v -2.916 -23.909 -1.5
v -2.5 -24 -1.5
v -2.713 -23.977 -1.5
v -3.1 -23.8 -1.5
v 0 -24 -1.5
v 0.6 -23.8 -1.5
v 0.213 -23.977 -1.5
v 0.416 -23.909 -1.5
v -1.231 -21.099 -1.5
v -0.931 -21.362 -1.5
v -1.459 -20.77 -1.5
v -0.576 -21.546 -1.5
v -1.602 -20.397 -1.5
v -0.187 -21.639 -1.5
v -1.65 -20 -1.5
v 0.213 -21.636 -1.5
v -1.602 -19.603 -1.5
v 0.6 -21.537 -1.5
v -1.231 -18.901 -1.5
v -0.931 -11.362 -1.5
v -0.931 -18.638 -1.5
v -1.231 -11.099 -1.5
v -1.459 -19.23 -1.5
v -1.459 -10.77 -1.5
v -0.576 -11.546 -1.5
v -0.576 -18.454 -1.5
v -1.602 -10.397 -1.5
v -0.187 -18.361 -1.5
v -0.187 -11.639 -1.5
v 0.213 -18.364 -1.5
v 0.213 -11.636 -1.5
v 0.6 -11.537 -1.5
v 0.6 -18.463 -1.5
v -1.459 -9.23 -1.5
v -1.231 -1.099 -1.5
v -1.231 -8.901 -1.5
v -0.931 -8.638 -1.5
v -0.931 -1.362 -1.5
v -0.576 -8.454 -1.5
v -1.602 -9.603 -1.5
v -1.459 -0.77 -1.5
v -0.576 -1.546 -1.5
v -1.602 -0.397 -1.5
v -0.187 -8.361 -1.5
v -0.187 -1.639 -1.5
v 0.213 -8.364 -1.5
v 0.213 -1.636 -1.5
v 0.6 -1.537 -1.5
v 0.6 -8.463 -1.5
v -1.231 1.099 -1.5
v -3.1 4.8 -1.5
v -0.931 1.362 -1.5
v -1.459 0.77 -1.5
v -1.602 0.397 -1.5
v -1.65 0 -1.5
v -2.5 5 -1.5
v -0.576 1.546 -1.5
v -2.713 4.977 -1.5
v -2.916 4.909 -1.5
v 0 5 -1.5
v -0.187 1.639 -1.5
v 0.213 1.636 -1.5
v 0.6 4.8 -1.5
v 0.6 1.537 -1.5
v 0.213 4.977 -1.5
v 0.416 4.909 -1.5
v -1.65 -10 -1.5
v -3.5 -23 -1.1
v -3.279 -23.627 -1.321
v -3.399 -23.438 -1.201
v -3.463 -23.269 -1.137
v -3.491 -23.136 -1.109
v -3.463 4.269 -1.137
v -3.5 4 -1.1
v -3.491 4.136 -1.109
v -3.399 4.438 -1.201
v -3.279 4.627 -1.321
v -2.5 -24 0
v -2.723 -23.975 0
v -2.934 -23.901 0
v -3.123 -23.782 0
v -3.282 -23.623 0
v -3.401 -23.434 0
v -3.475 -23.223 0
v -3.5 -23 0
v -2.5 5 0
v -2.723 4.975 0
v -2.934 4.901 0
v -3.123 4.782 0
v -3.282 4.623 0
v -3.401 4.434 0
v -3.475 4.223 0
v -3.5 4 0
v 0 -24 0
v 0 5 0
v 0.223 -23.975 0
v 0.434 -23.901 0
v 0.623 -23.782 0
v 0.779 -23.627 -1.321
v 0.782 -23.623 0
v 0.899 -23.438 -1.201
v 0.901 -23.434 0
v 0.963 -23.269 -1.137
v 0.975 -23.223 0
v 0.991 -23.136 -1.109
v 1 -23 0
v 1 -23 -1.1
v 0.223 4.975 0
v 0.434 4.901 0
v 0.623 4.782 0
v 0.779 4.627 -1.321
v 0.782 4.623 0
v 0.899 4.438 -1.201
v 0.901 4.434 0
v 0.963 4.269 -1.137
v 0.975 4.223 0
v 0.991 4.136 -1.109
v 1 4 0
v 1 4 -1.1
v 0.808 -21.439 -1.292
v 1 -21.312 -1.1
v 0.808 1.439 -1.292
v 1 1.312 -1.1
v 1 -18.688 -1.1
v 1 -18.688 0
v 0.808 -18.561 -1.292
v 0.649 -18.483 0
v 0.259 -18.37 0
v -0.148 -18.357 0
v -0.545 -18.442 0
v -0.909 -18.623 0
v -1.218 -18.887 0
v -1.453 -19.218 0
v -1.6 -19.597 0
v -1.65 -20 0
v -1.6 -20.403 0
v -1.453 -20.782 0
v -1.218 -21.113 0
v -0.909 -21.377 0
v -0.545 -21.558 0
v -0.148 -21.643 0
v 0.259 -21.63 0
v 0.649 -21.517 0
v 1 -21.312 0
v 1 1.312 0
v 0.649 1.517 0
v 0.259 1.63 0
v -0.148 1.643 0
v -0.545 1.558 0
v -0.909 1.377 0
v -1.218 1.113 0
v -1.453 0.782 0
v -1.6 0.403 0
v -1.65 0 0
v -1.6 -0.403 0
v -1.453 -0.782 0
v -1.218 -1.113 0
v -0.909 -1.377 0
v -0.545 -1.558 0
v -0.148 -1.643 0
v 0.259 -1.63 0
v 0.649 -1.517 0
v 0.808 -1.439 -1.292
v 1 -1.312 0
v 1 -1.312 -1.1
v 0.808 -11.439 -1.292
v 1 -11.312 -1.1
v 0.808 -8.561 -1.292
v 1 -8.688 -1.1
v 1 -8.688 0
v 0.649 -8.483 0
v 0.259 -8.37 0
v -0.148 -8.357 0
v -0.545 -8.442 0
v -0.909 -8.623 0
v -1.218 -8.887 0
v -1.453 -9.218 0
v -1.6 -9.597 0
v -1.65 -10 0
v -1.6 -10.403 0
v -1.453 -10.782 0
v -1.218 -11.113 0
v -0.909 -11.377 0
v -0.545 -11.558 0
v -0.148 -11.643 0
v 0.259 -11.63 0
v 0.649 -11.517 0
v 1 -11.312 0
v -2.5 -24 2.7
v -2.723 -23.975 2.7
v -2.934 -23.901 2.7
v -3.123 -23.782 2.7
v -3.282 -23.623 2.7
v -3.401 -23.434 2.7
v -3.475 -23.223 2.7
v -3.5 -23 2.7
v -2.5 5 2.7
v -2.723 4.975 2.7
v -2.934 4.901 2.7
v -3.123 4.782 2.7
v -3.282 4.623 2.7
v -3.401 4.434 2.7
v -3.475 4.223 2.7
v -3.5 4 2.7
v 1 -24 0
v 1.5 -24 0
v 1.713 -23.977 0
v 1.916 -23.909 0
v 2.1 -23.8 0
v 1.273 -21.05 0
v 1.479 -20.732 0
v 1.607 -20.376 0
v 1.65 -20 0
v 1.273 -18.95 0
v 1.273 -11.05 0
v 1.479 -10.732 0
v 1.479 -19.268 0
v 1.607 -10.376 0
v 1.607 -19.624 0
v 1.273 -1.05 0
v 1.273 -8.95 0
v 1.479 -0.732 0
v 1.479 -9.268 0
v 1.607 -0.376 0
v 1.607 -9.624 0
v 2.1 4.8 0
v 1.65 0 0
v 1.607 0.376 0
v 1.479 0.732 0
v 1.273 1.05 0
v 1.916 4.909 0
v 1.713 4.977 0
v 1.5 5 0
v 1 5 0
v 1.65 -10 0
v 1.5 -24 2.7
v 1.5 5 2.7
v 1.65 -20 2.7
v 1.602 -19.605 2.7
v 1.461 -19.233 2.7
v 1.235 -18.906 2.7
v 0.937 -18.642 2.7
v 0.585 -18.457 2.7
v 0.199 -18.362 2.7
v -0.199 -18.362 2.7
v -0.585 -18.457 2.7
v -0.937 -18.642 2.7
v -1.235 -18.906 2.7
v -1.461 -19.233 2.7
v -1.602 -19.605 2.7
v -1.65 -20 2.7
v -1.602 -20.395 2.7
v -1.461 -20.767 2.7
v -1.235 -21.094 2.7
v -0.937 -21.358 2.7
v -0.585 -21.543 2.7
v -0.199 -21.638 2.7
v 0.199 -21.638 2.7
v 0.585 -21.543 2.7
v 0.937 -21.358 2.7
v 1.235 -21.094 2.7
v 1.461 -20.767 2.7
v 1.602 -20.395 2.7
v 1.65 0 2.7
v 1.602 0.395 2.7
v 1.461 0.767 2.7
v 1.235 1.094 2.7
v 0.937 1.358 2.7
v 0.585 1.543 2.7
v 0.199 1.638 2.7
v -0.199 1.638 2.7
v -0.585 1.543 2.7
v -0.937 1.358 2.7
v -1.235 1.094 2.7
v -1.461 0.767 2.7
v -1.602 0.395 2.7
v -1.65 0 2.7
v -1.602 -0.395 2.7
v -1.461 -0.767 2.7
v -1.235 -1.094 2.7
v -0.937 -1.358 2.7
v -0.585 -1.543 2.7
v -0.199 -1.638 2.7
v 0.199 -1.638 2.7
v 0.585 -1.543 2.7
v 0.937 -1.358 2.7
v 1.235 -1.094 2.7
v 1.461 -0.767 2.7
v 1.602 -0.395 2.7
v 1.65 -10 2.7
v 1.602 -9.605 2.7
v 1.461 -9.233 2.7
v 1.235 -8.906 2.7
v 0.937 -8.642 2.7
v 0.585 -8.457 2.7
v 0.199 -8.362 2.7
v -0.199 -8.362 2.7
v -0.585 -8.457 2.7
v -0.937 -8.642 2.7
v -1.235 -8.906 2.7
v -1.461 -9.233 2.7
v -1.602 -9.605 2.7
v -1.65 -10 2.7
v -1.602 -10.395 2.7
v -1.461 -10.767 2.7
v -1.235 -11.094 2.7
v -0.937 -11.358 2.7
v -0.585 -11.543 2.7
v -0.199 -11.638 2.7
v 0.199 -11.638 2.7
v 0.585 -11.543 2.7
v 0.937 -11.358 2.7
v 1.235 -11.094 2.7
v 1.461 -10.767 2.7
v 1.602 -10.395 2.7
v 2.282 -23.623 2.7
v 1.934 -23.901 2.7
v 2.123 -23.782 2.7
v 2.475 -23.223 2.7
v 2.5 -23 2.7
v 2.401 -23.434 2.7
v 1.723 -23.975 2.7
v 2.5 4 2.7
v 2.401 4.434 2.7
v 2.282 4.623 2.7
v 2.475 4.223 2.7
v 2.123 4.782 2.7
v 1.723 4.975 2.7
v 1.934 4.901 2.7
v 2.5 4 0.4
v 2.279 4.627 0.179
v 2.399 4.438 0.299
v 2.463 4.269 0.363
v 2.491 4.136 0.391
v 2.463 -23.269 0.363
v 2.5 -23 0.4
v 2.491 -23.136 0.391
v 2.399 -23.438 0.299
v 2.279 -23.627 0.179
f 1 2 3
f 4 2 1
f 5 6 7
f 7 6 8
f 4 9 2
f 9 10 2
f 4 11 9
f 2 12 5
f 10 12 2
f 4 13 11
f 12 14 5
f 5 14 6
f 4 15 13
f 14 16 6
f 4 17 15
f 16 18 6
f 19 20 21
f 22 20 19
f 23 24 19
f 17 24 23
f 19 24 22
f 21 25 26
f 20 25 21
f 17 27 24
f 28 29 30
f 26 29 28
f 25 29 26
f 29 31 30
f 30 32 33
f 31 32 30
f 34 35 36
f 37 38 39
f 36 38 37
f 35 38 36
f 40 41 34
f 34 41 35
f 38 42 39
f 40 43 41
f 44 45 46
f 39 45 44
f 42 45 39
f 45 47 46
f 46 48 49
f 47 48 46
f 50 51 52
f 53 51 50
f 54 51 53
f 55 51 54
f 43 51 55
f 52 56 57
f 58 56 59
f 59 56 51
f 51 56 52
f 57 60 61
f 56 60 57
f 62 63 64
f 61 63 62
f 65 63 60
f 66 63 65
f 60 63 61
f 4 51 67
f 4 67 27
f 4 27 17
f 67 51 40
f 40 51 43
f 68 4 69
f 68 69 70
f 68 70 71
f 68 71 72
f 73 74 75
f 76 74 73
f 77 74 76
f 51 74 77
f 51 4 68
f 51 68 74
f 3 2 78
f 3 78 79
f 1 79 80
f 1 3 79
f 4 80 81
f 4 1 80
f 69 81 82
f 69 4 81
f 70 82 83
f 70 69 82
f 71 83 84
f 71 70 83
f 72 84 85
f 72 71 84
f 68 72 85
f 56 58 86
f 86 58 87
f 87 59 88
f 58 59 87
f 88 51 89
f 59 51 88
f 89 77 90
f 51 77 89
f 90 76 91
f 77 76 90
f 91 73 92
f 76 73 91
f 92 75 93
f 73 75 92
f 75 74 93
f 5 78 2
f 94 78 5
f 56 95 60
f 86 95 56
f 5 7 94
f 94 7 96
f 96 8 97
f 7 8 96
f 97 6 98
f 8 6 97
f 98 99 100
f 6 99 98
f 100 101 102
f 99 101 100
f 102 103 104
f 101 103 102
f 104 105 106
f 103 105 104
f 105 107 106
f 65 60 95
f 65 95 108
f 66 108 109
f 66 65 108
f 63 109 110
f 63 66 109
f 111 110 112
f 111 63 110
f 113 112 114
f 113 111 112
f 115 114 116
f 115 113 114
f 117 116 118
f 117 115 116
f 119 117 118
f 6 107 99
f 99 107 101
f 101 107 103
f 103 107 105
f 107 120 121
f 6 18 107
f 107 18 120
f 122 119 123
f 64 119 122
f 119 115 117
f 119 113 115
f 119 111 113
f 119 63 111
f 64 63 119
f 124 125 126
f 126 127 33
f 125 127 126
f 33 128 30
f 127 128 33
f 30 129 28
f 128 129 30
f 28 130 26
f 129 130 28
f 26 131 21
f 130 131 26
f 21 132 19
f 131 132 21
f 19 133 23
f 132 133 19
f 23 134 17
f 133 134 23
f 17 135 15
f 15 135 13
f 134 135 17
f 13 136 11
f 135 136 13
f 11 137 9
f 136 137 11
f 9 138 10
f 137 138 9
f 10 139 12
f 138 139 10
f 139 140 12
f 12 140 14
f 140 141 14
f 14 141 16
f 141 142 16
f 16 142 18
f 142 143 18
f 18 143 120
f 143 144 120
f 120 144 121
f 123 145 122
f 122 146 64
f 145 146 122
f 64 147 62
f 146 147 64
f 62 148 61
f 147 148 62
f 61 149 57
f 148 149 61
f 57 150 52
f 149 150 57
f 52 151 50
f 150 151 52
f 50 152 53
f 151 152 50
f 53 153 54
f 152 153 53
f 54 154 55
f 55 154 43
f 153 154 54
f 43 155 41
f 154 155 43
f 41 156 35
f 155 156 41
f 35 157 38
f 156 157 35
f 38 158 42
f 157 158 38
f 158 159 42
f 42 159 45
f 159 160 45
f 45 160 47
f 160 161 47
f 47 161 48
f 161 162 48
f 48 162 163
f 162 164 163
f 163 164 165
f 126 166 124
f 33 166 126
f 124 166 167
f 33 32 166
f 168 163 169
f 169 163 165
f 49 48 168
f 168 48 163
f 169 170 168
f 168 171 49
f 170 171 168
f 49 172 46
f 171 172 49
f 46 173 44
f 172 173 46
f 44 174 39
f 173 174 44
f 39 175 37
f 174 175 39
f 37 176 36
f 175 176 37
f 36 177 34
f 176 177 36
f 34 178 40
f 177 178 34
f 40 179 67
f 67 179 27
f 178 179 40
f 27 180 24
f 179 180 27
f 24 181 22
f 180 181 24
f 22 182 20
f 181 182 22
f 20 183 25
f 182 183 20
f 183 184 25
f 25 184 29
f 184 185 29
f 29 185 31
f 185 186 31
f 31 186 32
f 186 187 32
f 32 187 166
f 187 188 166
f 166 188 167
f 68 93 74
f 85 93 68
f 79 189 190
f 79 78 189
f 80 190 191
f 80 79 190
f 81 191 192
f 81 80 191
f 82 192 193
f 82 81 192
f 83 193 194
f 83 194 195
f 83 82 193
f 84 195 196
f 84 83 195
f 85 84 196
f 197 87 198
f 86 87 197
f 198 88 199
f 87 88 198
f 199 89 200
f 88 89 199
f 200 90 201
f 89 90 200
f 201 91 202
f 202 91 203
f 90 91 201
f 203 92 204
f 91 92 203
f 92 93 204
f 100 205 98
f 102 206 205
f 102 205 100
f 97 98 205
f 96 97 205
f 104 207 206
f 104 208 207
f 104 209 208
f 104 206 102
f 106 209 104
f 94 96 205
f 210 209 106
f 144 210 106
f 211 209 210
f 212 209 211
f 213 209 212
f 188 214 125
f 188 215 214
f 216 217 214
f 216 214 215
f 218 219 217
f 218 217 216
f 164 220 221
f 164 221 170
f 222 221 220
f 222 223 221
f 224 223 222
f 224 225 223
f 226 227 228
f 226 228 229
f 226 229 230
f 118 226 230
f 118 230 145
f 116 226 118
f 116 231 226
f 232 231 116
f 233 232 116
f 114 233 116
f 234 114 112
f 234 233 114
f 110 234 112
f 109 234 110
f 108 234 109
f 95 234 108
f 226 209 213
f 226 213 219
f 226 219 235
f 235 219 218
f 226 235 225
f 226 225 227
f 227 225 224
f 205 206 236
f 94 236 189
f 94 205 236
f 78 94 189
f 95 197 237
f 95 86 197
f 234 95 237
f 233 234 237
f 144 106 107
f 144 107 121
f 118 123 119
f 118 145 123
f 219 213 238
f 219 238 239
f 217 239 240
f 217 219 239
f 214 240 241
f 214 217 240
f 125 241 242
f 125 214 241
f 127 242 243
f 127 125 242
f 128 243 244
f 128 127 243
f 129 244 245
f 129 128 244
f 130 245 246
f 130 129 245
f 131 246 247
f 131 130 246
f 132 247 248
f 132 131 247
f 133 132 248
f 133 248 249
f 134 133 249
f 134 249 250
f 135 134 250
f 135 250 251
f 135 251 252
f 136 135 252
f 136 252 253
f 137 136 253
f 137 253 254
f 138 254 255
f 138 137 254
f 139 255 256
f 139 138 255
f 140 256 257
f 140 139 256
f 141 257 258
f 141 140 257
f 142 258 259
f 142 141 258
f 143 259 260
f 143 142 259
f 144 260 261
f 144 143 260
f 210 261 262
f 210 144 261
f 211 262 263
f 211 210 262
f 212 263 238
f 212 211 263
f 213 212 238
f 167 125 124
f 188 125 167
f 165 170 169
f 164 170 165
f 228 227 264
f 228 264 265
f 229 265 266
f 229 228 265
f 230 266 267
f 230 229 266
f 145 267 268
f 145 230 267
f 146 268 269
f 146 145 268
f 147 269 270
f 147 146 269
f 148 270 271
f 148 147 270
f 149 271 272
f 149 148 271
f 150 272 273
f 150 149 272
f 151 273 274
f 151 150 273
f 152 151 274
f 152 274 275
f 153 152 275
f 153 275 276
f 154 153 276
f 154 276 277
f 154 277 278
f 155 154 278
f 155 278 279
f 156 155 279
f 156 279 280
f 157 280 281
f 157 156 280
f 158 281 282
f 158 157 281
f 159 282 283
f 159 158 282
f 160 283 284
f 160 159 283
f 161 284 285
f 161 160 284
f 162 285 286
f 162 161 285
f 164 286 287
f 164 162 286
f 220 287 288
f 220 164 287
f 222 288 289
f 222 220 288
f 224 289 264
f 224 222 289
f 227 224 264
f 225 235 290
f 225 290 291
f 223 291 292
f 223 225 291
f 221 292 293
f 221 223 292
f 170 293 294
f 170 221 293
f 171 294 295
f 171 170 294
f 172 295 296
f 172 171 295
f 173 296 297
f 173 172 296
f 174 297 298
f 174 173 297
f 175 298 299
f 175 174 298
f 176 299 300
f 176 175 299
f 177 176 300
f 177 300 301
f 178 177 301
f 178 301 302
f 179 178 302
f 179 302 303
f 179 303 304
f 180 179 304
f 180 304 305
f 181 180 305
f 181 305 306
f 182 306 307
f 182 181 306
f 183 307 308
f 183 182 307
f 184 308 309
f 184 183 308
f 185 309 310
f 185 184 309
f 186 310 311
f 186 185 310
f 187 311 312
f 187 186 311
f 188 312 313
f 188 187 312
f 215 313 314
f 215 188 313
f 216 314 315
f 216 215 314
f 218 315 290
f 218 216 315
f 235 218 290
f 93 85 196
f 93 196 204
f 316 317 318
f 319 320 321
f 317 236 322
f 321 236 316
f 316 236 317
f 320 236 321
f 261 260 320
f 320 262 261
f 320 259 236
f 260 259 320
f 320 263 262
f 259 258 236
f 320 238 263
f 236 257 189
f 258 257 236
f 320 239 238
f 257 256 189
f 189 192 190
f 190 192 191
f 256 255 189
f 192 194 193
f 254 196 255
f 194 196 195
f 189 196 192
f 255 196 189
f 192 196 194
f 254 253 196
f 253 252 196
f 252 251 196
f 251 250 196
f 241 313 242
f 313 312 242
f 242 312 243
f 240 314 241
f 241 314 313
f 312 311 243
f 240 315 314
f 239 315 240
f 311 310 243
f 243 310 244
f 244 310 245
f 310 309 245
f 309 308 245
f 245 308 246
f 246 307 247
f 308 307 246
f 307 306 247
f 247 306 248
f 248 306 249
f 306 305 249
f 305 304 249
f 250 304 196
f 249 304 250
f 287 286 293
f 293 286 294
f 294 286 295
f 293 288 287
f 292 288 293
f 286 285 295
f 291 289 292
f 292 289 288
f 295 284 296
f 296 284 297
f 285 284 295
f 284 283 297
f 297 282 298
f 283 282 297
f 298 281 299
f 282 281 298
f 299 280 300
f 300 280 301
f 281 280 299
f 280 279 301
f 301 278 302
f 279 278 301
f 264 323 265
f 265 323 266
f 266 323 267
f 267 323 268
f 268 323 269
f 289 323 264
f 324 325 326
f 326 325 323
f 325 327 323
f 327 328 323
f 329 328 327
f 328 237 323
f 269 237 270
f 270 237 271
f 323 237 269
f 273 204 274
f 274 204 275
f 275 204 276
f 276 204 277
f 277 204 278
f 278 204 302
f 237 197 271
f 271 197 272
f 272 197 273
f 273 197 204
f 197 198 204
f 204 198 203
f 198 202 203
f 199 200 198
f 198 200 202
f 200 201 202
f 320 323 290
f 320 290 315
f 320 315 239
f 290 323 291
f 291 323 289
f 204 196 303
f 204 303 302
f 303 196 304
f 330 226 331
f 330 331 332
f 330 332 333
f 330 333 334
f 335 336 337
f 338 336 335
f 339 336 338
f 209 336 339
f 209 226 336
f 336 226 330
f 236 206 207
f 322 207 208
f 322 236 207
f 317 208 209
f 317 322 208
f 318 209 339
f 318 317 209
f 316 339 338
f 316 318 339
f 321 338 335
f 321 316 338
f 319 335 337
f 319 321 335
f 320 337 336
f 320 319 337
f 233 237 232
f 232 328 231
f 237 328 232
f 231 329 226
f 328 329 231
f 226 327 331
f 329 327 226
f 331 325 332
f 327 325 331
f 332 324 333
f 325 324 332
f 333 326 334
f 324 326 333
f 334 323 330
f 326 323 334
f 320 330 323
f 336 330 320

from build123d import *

# Parameters (mm, degrees)
SKETCH_W        = 6
SKETCH_H        = 29
SKETCH_R        = 1.65
PAD_DEPTH       = 2.7
SKETCH001_W     = 4.5
SKETCH001_H     = 29
PAD001_DEPTH    = 1.5
SKETCH002_R     = 1.65
POCKET_DEPTH    = 5.701
CHAMFER_SIZE    = 0.4
CHAMFER001_SIZE = 0.4
FILLET_R        = 1
FILLET001_R     = 1


with BuildPart() as part:
    # Sketch → Pad (new body)
    with BuildSketch(Plane.XY):
        with Locations((-0.5, -9.5)):
            Rectangle(SKETCH_W, SKETCH_H)
        Circle(SKETCH_R, mode=Mode.SUBTRACT)
        with Locations((0, -10)):
            Circle(SKETCH_R, mode=Mode.SUBTRACT)
        with Locations((0, -20)):
            Circle(SKETCH_R, mode=Mode.SUBTRACT)
    extrude(amount=PAD_DEPTH)

    # Sketch001 (on Face8 of Pad) → Pad001 (join)
    with BuildSketch(Plane(origin=(0, 0, 0), x_dir=(1, 0, 0), z_dir=(0, 0, -1))):
        with Locations((-1.25, 9.5)):
            Rectangle(SKETCH001_W, SKETCH001_H)
    extrude(amount=PAD001_DEPTH)

    # Sketch002 → Pocket (cut, through all)
    with BuildSketch(Plane.XY.offset(4.2)):
        Circle(SKETCH002_R)
        with Locations((0, -10)):
            Circle(SKETCH002_R)
        with Locations((0, -20)):
            Circle(SKETCH002_R)
    extrude(amount=-POCKET_DEPTH, mode=Mode.SUBTRACT)

    # Chamfer
    chamfer_edges = [part.edges().sort_by_distance(p)[0] for p in [
        (2.5, -9.5, 0),
        (1, 3.15622, -1.5),
        (1, -5, -1.5),
        (1, -15, -1.5),
        (1, -22.65622, -1.5),
    ]]
    chamfer(chamfer_edges, length=CHAMFER_SIZE)

    # Chamfer001
    chamfer001_edges = [part.edges().sort_by_distance(p)[0] for p in [
        (-3.5, -9.5, -1.5),
    ]]
    chamfer(chamfer001_edges, length=CHAMFER001_SIZE)

    # Fillet
    fillet_edges = [part.edges().sort_by_distance(p)[0] for p in [
        (2.5, 5, 1.55),
        (1, 5, -0.55),
        (-3.5, 5, -0.55),
        (-3.5, 5, 1.35),
    ]]
    fillet(fillet_edges, radius=FILLET_R)

    # Fillet001
    fillet001_edges = [part.edges().sort_by_distance(p)[0] for p in [
        (2.5, -24, 1.55),
        (1, -24, -0.55),
        (-3.5, -24, -0.55),
        (-3.5, -24, 1.35),
    ]]
    fillet(fillet001_edges, radius=FILLET001_R)


solid = part.part
